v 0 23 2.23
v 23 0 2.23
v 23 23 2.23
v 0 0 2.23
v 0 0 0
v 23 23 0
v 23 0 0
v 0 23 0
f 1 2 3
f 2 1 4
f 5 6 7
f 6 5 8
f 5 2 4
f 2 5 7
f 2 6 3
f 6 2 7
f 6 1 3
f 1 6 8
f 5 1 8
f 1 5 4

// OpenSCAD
/* Warning, this is a very basic generator with a lot of approximation 
input data : [FBGA, SPC, 23x23x2.23mm, 784, , A, C04-25664A]
generated by com.zoubworld.electronics.cad.model3d.Basic
Date : Sun Feb 15 10:50:49 CET 2026
*/

//body
color("black")
translate([0,0,0])
cube([23.0,23.0,2.23], center=false);
